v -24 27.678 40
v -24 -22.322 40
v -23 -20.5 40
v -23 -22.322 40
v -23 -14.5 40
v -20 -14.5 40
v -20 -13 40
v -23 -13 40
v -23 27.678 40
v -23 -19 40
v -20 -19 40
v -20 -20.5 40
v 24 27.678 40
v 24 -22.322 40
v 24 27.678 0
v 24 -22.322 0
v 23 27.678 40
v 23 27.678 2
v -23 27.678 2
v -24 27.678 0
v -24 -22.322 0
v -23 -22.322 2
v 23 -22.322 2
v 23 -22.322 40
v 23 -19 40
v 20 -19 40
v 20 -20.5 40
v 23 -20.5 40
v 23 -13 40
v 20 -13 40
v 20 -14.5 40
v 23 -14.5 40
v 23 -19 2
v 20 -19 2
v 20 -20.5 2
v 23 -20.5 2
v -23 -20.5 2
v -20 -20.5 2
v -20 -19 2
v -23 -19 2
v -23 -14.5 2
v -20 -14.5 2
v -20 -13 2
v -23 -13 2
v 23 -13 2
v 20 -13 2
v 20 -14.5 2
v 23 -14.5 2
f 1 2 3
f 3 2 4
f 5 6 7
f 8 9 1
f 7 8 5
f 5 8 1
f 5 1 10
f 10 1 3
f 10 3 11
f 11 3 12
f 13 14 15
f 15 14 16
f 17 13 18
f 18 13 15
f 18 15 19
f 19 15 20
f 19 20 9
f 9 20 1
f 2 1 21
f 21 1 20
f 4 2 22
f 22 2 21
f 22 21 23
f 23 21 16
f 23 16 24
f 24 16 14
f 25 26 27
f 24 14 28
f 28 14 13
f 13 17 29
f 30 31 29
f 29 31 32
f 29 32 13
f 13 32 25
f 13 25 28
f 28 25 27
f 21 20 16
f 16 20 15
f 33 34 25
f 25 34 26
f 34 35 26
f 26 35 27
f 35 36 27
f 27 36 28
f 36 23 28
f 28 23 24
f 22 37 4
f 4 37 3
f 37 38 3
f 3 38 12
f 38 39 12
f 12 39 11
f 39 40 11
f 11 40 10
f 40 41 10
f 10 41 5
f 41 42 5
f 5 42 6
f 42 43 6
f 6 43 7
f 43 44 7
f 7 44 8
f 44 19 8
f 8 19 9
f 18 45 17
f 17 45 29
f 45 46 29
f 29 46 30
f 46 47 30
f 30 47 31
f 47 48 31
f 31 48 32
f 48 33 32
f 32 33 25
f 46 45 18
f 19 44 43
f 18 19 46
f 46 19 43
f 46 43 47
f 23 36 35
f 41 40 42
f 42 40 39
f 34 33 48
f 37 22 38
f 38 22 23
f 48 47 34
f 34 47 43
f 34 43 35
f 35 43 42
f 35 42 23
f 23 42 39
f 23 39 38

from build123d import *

# Parameters (mm, degrees)
SKETCH1_W           = 48
SKETCH1_H           = 50
BOSS_EXTRUDE1_DEPTH = 40
CUT_EXTRUDE5_START  = 40
CUT_EXTRUDE5_DEPTH  = 38


with BuildPart() as part:
    # Sketch1 → Boss-Extrude1 (new body)
    with BuildSketch(Plane.XY):
        with Locations((0, 2.677885393)):
            Rectangle(SKETCH1_W, SKETCH1_H)
    extrude(amount=BOSS_EXTRUDE1_DEPTH)

    # Sketch4 → Cut-Extrude5 (cut)
    with BuildSketch(Plane.XY.offset(CUT_EXTRUDE5_START)):
        Polygon((-23, -19), (-23, -14.5), (-20, -14.5), (-20, -13), (-23, -13), (-23, 27.677885393), (23, 27.677885393), (23, -13), (20, -13), (20, -14.5), (23, -14.5), (23, -19), (20, -19), (20, -20.5), (23, -20.5), (23, -22.322114607), (-23, -22.322114607), (-23, -20.5), (-20, -20.5), (-20, -19), align=None)
    extrude(amount=-CUT_EXTRUDE5_DEPTH, mode=Mode.SUBTRACT)


solid = part.part
